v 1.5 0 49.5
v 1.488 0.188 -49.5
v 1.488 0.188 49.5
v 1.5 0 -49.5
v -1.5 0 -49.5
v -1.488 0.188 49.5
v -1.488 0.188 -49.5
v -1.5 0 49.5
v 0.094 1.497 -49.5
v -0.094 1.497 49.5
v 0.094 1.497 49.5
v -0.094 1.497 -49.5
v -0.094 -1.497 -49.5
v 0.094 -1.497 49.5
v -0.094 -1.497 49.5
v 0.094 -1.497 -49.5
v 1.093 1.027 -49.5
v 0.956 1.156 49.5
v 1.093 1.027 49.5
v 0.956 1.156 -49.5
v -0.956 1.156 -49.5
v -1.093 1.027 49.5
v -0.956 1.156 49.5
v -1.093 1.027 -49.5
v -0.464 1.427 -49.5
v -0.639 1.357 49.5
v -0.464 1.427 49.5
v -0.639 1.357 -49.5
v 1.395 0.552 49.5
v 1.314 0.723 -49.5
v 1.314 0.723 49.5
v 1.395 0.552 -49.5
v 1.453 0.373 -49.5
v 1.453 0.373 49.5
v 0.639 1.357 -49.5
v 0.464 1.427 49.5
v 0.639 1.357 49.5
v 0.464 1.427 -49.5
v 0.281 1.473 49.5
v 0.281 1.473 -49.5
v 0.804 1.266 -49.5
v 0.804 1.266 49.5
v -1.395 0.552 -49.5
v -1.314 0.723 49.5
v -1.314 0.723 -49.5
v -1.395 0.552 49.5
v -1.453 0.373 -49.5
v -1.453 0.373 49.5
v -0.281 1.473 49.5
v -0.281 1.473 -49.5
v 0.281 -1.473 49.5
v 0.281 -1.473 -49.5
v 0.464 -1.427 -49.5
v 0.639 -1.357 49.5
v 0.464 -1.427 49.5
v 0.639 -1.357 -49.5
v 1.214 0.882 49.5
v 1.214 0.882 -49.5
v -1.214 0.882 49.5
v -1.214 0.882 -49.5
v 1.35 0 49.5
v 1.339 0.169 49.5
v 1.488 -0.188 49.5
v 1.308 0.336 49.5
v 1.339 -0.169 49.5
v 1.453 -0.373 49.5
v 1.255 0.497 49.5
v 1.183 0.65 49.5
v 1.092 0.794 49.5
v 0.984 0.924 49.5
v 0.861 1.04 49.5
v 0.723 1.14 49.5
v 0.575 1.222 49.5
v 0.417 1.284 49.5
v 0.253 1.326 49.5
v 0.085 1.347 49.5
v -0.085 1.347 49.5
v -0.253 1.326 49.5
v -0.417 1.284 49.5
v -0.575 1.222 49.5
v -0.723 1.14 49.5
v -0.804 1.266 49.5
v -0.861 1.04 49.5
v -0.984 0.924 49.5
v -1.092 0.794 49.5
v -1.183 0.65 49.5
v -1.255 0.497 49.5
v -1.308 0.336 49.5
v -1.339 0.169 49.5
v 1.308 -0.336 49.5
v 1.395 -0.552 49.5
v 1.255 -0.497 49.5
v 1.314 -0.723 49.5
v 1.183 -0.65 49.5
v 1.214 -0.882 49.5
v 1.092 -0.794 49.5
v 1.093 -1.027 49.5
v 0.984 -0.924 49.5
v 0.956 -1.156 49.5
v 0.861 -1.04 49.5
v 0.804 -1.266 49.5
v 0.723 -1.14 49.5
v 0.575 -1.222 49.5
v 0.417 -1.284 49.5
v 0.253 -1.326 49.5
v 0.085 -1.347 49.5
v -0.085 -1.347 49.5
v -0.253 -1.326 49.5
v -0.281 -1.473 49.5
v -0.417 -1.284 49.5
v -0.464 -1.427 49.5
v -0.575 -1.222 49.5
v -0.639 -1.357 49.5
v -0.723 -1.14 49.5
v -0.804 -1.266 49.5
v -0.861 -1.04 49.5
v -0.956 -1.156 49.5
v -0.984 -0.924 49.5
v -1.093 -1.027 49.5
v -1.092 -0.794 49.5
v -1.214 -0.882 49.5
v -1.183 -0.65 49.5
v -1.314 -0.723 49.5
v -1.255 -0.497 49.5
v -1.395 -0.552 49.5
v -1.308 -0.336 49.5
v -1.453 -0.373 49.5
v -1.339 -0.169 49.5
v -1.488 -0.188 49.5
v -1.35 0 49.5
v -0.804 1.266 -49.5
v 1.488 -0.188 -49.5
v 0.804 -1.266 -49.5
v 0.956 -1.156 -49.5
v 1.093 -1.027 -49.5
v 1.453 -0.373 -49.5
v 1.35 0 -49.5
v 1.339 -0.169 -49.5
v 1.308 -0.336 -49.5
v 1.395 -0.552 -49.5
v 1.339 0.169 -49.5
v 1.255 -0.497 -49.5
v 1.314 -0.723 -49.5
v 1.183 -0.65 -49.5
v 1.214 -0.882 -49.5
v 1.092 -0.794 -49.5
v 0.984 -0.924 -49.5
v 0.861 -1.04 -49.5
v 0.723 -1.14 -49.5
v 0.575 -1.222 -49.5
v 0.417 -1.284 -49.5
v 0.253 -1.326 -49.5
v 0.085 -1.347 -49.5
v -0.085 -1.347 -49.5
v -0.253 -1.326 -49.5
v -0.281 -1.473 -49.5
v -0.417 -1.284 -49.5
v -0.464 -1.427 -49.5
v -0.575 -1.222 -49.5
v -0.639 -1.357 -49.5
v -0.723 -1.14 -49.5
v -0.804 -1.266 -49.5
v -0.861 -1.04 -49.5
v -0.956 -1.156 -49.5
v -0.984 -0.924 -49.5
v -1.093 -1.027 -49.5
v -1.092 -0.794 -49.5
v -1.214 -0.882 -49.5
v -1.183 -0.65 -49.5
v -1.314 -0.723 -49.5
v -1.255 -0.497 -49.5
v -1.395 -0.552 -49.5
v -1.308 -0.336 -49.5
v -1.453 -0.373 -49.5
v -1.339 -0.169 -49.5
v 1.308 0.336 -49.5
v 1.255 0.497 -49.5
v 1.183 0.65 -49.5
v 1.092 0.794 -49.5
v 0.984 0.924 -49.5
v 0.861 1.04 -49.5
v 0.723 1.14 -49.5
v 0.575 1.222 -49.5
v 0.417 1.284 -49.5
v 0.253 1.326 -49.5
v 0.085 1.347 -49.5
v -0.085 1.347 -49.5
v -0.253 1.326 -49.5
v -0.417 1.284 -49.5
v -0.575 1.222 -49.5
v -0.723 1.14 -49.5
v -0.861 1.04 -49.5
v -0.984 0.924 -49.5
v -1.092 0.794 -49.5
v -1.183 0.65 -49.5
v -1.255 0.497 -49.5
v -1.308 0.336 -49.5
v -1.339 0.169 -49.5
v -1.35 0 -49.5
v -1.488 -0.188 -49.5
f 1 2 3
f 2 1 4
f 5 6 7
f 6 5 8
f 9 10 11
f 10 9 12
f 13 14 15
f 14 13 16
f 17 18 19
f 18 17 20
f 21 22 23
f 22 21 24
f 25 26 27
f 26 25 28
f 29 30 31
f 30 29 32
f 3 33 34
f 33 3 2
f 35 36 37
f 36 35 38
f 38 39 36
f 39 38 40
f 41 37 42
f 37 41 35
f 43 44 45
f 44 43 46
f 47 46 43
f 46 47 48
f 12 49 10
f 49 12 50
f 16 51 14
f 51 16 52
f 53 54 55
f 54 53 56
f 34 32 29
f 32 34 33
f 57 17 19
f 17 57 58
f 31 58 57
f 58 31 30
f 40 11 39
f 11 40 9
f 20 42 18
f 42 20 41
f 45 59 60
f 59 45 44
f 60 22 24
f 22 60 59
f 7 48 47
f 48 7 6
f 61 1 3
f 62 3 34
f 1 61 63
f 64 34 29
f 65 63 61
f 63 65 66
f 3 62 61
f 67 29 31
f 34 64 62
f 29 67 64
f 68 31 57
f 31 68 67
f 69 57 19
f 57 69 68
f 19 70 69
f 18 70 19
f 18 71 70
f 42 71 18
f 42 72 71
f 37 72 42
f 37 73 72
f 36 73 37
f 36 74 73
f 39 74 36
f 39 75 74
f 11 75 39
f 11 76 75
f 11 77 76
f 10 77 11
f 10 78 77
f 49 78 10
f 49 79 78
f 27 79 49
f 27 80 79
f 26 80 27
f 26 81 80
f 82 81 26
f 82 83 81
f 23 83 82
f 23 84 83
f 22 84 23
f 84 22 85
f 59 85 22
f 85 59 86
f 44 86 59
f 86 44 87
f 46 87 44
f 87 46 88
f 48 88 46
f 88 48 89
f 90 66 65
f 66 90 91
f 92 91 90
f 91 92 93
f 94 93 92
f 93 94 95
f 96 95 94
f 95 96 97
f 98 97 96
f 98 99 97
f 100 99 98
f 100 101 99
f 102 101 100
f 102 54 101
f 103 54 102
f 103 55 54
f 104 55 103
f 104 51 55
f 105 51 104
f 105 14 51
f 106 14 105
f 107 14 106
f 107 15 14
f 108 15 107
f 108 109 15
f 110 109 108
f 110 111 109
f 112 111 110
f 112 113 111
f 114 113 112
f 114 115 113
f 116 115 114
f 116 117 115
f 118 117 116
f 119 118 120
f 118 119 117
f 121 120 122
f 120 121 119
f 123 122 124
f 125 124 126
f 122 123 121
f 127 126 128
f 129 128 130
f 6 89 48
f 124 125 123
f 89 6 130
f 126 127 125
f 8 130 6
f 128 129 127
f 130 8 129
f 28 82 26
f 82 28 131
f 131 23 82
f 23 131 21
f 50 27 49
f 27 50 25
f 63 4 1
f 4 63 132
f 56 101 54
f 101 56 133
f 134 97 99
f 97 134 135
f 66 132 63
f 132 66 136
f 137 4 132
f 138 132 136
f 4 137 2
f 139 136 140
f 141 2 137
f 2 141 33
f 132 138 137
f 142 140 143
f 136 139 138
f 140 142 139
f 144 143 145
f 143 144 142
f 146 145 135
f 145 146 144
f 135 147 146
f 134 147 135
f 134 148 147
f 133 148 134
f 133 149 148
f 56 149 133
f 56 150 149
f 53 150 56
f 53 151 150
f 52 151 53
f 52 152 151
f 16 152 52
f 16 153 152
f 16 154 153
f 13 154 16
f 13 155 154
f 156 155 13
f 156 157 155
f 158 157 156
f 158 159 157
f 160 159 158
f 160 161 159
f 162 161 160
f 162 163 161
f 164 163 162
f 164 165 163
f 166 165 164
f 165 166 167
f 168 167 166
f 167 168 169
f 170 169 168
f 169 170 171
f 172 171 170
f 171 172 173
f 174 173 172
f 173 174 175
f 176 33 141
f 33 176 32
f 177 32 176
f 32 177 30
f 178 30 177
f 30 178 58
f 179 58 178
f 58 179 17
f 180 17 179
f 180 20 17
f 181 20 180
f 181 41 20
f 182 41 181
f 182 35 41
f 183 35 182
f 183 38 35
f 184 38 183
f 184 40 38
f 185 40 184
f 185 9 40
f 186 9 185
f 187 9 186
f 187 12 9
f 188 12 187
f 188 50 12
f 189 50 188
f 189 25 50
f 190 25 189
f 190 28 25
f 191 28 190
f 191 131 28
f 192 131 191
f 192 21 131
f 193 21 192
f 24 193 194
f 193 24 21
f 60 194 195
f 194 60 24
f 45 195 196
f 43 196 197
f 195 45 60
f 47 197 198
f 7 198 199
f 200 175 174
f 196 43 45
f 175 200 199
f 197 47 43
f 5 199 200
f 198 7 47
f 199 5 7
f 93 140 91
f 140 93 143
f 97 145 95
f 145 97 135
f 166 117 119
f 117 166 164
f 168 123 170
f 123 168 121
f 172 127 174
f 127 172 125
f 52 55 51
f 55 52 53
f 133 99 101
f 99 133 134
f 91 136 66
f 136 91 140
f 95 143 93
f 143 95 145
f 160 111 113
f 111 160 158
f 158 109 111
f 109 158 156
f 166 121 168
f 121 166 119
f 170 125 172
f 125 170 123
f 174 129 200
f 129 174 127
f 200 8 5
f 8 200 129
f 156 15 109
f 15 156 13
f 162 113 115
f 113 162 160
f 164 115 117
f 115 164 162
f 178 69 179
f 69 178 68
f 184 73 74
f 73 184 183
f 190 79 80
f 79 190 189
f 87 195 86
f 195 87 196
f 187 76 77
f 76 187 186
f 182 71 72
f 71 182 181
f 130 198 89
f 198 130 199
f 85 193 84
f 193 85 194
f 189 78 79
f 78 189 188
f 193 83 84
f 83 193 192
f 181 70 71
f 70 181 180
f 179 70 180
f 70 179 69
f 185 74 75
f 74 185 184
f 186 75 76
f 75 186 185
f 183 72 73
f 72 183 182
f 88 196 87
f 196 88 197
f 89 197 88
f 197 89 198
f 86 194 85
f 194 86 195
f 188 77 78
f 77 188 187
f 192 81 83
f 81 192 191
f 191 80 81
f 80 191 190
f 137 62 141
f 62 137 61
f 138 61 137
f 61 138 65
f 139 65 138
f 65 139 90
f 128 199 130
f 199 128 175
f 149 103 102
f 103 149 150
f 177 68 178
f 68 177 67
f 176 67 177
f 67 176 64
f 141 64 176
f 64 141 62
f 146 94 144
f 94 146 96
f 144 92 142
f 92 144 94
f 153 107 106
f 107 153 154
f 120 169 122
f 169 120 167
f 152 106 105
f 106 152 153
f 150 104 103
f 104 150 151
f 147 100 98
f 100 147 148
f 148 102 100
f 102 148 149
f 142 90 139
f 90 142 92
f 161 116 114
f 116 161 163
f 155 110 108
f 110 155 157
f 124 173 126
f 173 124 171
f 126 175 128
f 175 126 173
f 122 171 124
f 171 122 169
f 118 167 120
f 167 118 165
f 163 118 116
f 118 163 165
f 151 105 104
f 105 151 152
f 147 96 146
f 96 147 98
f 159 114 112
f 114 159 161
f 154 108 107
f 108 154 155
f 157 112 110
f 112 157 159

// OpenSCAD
$fn = 50;


difference() {
	union() {
		translate(v = [0, 0, -49.5000000000]) {
			cylinder(h = 99, r = 1.5000000000);
		}
	}
	union() {
		translate(v = [0, 0, -100.0000000000]) {
			cylinder(h = 200, r = 1.3500000000);
		}
	}
}
